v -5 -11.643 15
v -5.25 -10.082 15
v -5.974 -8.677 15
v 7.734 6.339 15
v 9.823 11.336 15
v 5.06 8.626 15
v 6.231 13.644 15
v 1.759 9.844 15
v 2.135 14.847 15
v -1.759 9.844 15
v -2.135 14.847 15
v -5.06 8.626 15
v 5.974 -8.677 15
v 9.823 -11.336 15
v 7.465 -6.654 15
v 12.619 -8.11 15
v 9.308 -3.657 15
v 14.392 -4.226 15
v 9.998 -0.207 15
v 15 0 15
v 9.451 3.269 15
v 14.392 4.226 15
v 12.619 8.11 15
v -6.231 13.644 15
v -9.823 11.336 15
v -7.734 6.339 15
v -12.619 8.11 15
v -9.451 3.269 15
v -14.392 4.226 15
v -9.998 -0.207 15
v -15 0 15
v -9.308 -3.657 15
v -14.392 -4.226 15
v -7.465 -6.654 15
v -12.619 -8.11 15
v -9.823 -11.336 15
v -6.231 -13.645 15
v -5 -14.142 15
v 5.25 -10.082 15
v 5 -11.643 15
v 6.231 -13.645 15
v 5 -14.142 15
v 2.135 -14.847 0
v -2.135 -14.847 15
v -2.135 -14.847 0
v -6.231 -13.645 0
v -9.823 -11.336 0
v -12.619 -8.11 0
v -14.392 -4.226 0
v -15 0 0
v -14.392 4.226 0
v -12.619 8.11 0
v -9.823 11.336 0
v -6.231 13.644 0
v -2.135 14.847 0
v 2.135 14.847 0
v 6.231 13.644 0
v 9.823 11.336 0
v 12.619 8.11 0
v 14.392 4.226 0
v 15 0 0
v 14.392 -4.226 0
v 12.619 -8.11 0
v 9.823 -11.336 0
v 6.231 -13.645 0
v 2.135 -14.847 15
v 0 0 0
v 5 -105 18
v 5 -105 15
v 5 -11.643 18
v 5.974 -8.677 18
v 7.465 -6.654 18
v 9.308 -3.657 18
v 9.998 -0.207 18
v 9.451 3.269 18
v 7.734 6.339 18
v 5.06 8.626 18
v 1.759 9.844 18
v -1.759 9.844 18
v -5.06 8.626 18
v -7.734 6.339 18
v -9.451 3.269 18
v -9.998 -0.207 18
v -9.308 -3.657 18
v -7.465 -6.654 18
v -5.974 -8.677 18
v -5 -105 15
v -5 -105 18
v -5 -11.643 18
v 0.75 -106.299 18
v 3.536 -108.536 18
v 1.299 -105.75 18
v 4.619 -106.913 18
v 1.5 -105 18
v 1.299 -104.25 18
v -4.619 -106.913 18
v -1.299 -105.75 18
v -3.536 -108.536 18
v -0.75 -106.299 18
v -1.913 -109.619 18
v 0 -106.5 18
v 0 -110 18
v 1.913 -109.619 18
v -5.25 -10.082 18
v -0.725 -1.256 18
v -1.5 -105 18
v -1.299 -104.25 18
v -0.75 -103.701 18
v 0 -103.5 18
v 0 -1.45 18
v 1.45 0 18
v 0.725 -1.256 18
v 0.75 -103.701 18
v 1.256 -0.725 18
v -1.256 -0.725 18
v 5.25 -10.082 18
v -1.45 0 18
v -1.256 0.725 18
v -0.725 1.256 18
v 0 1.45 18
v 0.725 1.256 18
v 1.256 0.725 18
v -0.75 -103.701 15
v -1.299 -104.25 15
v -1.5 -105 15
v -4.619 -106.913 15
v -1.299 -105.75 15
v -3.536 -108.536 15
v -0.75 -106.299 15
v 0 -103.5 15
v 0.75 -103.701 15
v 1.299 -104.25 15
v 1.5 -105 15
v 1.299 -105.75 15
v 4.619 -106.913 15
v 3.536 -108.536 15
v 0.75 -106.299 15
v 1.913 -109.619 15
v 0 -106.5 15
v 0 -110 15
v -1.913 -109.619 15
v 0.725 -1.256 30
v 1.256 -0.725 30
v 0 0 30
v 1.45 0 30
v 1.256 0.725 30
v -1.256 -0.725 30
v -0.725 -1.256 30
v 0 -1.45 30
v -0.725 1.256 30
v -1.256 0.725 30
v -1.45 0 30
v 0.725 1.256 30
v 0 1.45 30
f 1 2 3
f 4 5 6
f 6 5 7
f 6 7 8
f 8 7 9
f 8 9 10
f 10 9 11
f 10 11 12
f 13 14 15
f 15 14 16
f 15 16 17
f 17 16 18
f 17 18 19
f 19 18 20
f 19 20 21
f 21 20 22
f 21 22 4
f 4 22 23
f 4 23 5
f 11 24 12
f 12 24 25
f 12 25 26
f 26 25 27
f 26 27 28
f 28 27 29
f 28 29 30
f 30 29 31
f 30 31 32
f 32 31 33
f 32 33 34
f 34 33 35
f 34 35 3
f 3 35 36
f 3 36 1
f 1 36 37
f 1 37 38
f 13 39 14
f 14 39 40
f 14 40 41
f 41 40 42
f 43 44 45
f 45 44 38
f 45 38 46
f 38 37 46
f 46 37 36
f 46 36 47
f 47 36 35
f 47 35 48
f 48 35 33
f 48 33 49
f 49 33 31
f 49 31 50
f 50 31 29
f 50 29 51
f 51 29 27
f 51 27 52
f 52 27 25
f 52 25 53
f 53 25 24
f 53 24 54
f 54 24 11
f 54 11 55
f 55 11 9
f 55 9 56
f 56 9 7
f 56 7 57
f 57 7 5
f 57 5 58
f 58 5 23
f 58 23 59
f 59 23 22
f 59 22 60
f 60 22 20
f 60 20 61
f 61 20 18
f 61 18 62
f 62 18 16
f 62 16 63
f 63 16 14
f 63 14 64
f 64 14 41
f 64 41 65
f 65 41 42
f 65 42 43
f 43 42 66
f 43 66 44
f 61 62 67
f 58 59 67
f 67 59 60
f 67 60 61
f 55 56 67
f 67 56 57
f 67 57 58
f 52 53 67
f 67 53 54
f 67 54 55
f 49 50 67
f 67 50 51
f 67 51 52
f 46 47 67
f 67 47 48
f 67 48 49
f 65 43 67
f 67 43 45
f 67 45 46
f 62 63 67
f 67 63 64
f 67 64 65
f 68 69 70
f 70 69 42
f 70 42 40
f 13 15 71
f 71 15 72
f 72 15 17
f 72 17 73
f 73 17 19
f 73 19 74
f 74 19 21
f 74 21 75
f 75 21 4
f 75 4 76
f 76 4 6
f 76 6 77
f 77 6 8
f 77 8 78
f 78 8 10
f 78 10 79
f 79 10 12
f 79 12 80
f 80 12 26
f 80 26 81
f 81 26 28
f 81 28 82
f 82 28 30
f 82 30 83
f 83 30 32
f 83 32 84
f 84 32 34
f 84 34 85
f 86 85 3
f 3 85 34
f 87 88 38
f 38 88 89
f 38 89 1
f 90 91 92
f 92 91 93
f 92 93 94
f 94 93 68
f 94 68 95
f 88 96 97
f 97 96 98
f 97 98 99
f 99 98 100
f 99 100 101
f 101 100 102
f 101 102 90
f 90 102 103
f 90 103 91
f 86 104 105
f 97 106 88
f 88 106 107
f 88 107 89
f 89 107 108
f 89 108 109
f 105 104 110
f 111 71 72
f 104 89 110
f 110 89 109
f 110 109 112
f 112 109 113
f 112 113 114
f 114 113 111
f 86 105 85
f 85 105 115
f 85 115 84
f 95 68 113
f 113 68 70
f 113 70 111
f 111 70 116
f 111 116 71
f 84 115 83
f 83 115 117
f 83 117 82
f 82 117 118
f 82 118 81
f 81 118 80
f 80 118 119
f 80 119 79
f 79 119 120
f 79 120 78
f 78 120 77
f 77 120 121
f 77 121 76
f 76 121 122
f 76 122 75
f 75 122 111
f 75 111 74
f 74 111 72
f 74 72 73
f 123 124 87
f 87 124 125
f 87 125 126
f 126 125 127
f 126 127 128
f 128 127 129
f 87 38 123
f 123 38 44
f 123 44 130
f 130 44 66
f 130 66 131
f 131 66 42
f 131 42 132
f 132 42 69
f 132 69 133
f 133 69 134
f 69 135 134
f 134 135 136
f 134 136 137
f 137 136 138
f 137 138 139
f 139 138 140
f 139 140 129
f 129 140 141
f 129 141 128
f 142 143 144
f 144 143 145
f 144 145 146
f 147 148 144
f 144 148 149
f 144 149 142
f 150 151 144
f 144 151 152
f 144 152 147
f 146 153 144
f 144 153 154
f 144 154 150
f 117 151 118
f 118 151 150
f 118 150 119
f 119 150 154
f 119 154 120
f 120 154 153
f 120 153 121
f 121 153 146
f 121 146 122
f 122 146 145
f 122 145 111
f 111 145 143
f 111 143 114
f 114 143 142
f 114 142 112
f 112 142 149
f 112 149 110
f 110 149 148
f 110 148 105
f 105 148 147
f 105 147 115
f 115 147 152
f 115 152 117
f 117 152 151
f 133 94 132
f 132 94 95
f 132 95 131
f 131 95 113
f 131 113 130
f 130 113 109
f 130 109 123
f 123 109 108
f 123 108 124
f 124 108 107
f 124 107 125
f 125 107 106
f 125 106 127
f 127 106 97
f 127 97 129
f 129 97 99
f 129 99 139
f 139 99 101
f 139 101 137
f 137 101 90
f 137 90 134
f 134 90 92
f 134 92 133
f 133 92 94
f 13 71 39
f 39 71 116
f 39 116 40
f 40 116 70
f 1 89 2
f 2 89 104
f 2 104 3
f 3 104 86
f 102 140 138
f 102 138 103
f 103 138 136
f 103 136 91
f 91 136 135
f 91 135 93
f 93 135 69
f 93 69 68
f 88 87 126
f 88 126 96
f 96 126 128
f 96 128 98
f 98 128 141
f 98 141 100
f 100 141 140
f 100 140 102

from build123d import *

# Parameters (mm, degrees)
SKETCH1_R           = 15
BOSS_EXTRUDE1_DEPTH = 15
SKETCH2_R           = 1.45
BOSS_EXTRUDE2_DEPTH = 15
BOSS_EXTRUDE3_DEPTH = 3
SKETCH5_R           = 1.5
CUT_EXTRUDE1_DEPTH  = 113.467773162
FILLET1_R           = 5


with BuildPart() as part:
    # Sketch1 → Boss-Extrude1 (new body)
    with BuildSketch(Plane.XY):
        Circle(SKETCH1_R)
    extrude(amount=BOSS_EXTRUDE1_DEPTH)

    # Sketch2 → Boss-Extrude2 (add)
    with BuildSketch(Plane.XY.offset(15)):
        Circle(SKETCH2_R)
    extrude(amount=BOSS_EXTRUDE2_DEPTH)

    # Sketch4 → Boss-Extrude3 (add)
    with BuildSketch(Plane.XY.offset(15)):
        with BuildLine():
            Line((5, -10), (7.465093605, -6.653749128))
            ThreePointArc((7.465093605, -6.653749128), (0, 10), (-7.465093605, -6.653749128))
            Line((-7.465093605, -6.653749128), (-5, -10))
            Line((-5, -10), (-5, -110))
            Line((-5, -110), (5, -110))
            Line((5, -110), (5, -10))
        make_face()
    extrude(amount=BOSS_EXTRUDE3_DEPTH)

    # Sketch5 → Cut-Extrude1 (cut, through all)
    with BuildSketch(Plane.XY.offset(18)):
        with Locations((0, -105)):
            Circle(SKETCH5_R)
    extrude(amount=-CUT_EXTRUDE1_DEPTH, mode=Mode.SUBTRACT)

    # Fillet1
    fillet1_edges = [part.edges().sort_by_distance(p)[0] for p in [
        (5, -10, 16.5),
        (-5, -10, 16.5),
        (-5, -110, 16.5),
        (5, -110, 16.5),
    ]]
    fillet(fillet1_edges, radius=FILLET1_R - 0.0001)  # a hair under: the kernel refuses the full size


solid = part.part
